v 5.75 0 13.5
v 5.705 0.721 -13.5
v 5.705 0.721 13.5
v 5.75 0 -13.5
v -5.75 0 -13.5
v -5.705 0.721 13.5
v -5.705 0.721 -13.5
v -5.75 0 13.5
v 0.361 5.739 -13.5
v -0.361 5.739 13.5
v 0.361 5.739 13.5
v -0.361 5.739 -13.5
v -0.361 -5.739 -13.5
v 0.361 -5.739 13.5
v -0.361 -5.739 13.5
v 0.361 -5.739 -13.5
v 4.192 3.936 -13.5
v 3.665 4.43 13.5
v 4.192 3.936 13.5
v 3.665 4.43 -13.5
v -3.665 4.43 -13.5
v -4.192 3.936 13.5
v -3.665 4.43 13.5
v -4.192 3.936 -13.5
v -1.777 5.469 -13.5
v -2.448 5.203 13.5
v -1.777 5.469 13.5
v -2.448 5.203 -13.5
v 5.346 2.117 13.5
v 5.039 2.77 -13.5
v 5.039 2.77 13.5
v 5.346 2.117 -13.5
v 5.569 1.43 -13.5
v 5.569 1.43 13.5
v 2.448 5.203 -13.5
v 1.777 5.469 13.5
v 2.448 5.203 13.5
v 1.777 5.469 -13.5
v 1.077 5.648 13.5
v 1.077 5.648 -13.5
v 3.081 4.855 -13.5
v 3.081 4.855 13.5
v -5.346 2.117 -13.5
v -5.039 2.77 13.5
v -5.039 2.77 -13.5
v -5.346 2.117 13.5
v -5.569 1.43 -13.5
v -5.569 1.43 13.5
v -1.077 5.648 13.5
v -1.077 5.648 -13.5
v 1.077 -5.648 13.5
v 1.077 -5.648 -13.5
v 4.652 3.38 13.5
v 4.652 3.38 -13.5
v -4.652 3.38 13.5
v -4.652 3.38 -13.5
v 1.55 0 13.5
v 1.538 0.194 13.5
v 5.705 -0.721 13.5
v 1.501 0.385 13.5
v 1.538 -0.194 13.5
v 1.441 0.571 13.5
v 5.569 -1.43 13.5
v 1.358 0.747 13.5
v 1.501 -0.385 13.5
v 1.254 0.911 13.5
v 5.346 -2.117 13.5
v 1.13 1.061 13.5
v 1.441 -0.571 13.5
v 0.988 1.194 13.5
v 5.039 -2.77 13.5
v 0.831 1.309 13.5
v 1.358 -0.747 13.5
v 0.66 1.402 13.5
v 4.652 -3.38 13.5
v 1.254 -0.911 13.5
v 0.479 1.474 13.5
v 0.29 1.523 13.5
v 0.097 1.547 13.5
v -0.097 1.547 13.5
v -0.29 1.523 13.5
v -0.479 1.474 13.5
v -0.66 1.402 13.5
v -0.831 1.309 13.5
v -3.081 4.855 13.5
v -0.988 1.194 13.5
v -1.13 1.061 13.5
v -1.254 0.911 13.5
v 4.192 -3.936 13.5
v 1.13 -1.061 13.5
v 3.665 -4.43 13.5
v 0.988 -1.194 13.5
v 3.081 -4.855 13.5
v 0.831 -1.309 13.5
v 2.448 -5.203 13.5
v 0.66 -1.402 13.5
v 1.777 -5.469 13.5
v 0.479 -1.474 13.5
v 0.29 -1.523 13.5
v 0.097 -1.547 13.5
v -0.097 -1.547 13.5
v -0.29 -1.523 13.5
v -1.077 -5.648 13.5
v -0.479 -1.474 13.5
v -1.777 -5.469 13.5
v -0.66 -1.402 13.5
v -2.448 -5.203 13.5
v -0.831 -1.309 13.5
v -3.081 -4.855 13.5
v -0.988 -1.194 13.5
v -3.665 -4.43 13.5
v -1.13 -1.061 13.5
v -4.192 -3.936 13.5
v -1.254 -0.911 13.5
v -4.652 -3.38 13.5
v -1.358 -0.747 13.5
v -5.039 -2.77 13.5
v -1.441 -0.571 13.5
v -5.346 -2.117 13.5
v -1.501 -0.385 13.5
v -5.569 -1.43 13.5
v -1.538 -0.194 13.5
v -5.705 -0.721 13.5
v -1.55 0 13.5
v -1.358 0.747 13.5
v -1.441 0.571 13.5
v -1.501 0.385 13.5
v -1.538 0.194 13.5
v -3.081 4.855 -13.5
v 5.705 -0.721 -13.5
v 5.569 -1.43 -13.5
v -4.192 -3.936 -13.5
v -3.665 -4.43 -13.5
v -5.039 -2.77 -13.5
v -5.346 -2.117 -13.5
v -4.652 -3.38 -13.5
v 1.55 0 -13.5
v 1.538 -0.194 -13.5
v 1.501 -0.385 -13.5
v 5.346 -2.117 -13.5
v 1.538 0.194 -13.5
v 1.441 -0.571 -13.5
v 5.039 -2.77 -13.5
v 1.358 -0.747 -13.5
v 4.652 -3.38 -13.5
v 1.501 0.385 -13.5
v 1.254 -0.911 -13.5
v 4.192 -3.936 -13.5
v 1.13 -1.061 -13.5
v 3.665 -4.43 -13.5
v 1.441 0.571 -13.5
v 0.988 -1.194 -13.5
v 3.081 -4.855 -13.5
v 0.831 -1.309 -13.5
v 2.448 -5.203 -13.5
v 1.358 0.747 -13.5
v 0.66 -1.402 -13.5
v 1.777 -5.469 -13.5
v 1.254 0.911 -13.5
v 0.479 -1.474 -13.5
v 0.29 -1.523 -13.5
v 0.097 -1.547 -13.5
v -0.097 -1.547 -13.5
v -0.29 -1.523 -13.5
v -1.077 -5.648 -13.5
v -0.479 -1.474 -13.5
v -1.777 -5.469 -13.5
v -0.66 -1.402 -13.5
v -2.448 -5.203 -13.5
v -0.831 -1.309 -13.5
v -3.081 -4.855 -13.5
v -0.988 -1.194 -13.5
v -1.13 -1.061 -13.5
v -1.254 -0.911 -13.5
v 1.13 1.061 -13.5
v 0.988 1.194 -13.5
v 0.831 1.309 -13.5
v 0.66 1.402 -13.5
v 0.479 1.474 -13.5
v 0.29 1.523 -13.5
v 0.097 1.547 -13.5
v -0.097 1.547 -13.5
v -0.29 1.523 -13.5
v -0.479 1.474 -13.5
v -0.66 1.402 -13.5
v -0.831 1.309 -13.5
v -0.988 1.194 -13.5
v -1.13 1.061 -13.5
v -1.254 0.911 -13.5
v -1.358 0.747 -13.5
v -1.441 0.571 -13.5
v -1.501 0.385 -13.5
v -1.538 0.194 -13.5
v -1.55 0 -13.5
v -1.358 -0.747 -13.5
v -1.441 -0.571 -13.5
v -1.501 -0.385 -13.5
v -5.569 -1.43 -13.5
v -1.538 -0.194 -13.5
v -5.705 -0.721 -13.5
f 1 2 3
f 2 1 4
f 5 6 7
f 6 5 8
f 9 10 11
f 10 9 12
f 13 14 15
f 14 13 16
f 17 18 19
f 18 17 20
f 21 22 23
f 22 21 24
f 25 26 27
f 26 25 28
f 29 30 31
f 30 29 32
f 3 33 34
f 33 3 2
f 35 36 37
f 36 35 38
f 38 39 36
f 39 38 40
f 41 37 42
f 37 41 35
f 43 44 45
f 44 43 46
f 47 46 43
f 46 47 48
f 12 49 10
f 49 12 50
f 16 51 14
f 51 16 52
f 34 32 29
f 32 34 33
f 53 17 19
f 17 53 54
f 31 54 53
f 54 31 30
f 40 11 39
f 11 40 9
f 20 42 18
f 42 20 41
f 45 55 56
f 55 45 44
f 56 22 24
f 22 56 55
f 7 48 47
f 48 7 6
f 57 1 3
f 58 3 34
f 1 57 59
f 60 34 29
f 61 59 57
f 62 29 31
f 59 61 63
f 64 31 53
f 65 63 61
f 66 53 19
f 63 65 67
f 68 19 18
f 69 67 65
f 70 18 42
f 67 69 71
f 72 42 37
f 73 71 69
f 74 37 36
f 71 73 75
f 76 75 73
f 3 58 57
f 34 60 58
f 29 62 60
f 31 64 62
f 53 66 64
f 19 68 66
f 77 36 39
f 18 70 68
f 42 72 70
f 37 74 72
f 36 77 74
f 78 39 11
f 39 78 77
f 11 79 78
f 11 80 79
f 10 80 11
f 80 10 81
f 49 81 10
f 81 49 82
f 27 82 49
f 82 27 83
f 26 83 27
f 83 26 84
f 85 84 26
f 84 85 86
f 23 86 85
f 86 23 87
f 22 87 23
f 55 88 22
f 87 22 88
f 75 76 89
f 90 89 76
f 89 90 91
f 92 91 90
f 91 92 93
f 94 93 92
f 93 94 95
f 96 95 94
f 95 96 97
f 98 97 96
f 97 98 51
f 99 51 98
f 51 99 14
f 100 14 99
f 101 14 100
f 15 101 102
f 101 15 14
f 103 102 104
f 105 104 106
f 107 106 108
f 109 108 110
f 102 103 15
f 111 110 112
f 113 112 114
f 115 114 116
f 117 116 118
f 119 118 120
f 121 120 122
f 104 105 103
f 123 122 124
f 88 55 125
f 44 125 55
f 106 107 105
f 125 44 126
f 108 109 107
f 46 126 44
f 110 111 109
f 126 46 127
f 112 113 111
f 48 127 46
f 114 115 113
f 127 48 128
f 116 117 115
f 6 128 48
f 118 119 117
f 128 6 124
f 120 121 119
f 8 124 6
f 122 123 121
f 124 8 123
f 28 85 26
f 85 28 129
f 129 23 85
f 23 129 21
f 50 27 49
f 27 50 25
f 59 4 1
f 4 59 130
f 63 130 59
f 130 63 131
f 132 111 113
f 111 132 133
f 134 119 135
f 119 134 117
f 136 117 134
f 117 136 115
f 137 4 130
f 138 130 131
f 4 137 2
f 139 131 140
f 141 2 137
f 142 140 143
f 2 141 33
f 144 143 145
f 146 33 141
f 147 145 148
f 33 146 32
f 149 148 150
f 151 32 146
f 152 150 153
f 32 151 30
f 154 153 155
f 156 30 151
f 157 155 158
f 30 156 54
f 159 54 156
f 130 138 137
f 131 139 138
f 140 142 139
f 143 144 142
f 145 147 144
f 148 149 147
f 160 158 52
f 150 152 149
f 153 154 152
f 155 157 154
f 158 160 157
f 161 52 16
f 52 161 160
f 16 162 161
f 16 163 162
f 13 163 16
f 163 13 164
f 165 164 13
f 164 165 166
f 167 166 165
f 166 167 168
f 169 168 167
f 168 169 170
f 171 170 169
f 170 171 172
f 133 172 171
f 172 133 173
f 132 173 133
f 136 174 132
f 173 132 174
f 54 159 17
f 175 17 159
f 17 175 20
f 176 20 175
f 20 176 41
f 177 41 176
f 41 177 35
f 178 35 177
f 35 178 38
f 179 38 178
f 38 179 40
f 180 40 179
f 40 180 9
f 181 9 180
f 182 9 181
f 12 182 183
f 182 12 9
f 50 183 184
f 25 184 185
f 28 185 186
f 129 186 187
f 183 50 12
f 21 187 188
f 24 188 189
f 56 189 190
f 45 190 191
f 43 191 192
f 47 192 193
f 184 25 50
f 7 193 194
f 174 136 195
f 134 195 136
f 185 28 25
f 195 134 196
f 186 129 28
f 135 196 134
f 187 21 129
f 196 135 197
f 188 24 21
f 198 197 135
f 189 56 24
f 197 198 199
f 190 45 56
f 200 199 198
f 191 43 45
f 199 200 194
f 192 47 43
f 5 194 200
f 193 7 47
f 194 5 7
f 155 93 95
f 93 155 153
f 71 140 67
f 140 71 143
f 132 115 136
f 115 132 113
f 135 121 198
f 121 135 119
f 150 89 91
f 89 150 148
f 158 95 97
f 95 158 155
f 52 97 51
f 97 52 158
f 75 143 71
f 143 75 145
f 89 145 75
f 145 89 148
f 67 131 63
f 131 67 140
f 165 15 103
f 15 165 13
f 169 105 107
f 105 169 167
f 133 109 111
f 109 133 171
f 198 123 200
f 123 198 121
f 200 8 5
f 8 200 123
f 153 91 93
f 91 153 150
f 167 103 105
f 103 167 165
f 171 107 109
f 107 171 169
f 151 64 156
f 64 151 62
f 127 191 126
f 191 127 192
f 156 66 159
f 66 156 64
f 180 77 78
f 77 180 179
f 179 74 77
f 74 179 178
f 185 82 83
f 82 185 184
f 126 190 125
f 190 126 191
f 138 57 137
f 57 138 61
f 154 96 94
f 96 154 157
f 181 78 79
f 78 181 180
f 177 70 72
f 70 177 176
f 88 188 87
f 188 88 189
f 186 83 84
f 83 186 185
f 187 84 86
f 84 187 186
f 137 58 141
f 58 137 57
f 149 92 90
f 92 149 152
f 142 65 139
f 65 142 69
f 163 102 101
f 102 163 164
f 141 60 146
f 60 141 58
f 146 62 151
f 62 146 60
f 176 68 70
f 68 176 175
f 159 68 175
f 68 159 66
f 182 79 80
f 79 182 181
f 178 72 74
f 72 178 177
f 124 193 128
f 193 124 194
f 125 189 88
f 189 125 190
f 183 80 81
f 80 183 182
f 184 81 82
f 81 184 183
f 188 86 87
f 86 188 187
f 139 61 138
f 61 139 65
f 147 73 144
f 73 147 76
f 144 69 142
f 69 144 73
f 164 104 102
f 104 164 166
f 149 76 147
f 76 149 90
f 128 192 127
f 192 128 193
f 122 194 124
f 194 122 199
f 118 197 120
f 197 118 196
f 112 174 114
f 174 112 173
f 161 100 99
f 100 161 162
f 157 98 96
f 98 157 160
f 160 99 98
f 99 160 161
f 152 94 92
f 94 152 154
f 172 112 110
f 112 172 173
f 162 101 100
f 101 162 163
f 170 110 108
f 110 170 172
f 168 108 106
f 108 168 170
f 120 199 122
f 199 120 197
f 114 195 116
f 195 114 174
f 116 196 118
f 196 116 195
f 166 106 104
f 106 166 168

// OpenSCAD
$fn = 50;


difference() {
	union() {
		translate(v = [0, 0, -13.5000000000]) {
			cylinder(h = 27, r = 5.7500000000);
		}
	}
	union() {
		translate(v = [0, 0, -100.0000000000]) {
			cylinder(h = 200, r = 1.5500000000);
		}
	}
}
